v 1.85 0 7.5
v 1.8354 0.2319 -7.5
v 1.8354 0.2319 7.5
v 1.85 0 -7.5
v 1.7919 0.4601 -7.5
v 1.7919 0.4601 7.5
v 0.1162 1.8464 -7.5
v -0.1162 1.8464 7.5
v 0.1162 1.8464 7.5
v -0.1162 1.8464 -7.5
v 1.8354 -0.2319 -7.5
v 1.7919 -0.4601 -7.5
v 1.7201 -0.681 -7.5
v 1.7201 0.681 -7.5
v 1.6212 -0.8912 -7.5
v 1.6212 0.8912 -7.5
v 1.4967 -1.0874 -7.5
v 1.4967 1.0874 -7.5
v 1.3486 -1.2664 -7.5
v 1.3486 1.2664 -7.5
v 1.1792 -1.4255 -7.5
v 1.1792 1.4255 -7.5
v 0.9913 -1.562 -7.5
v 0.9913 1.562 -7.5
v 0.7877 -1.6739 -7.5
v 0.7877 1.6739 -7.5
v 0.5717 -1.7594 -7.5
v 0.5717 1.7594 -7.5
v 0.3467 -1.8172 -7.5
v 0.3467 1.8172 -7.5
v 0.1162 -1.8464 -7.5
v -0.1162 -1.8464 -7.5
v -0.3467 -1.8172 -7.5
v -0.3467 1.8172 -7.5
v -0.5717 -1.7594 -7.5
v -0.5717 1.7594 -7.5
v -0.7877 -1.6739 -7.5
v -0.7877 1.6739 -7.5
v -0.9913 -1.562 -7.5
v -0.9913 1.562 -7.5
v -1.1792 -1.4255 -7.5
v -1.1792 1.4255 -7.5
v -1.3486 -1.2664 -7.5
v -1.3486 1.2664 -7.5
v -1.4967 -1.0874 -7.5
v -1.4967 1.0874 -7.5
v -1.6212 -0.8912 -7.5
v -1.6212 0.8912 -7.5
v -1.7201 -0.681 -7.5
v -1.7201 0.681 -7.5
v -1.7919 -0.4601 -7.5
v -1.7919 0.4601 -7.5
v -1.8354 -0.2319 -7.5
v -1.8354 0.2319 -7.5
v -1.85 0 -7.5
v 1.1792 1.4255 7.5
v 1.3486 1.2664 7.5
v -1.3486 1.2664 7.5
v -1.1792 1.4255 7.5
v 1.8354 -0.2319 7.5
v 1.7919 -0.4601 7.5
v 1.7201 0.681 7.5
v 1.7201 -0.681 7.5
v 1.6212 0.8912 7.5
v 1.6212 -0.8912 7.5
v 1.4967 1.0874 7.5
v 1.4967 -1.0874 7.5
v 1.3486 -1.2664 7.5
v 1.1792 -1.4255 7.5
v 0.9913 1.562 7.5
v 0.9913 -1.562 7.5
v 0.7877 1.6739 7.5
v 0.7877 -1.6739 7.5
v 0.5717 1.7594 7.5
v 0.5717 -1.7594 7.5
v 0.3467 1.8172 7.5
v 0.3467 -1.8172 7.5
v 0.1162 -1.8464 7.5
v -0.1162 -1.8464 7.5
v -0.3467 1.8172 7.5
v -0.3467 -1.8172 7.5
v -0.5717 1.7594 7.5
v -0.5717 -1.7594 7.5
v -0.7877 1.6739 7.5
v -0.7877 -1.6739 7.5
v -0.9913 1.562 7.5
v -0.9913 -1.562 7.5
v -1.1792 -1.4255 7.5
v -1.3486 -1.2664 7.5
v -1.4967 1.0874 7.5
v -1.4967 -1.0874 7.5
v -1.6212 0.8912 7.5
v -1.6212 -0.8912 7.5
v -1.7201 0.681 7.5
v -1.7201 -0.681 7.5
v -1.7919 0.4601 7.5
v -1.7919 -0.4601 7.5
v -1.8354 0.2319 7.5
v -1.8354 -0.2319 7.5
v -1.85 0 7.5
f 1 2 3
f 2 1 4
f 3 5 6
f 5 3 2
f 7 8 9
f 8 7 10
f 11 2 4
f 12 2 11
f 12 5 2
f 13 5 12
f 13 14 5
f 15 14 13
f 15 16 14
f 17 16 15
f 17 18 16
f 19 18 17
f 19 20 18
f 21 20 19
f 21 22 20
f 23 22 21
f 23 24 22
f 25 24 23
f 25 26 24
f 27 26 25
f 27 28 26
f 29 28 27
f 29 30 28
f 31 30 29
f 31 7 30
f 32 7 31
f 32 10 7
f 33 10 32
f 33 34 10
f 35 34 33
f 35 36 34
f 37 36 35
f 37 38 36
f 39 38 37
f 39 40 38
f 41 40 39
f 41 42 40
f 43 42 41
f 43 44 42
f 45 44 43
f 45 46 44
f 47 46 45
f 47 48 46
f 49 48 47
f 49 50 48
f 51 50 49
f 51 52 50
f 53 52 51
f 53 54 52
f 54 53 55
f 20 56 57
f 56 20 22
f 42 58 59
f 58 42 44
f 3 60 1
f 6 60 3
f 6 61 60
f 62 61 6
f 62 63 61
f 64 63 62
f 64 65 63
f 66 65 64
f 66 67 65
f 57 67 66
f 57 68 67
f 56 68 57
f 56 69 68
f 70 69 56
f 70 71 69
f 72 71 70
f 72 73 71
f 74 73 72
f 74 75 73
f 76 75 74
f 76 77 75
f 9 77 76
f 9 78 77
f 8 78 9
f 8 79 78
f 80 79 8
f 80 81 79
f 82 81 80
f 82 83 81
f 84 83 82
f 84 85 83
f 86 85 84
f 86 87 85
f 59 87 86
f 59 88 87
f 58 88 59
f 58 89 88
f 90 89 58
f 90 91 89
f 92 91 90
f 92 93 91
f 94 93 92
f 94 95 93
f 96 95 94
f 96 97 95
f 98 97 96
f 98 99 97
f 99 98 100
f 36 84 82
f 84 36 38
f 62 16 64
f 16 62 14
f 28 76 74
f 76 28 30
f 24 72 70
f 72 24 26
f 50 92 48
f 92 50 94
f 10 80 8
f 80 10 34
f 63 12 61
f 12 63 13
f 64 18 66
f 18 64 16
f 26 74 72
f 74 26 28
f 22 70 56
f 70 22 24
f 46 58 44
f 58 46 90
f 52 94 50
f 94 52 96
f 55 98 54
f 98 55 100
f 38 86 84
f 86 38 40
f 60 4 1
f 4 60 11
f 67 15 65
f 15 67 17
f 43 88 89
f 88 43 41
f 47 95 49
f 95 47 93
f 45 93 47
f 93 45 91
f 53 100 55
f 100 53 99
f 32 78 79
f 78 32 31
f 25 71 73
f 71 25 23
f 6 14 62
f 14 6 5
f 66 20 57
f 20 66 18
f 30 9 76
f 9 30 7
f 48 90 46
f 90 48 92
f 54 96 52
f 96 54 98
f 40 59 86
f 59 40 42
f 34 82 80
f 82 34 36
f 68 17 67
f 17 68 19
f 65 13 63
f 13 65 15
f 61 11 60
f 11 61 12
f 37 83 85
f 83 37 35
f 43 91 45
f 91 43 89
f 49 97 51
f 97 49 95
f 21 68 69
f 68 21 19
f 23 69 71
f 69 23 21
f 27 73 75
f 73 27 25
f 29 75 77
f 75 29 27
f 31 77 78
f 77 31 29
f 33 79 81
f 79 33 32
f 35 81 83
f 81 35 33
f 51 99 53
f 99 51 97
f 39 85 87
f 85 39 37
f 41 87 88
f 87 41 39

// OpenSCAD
$fn = 50;


difference() {
	union() {
		translate(v = [0, 0, -7.5000000000]) {
			cylinder(h = 15, r = 1.8500000000);
		}
	}
	union() {
		translate(v = [0, 0, -100.0000000000]) {
			cylinder(h = 200, r = 0);
		}
	}
}
